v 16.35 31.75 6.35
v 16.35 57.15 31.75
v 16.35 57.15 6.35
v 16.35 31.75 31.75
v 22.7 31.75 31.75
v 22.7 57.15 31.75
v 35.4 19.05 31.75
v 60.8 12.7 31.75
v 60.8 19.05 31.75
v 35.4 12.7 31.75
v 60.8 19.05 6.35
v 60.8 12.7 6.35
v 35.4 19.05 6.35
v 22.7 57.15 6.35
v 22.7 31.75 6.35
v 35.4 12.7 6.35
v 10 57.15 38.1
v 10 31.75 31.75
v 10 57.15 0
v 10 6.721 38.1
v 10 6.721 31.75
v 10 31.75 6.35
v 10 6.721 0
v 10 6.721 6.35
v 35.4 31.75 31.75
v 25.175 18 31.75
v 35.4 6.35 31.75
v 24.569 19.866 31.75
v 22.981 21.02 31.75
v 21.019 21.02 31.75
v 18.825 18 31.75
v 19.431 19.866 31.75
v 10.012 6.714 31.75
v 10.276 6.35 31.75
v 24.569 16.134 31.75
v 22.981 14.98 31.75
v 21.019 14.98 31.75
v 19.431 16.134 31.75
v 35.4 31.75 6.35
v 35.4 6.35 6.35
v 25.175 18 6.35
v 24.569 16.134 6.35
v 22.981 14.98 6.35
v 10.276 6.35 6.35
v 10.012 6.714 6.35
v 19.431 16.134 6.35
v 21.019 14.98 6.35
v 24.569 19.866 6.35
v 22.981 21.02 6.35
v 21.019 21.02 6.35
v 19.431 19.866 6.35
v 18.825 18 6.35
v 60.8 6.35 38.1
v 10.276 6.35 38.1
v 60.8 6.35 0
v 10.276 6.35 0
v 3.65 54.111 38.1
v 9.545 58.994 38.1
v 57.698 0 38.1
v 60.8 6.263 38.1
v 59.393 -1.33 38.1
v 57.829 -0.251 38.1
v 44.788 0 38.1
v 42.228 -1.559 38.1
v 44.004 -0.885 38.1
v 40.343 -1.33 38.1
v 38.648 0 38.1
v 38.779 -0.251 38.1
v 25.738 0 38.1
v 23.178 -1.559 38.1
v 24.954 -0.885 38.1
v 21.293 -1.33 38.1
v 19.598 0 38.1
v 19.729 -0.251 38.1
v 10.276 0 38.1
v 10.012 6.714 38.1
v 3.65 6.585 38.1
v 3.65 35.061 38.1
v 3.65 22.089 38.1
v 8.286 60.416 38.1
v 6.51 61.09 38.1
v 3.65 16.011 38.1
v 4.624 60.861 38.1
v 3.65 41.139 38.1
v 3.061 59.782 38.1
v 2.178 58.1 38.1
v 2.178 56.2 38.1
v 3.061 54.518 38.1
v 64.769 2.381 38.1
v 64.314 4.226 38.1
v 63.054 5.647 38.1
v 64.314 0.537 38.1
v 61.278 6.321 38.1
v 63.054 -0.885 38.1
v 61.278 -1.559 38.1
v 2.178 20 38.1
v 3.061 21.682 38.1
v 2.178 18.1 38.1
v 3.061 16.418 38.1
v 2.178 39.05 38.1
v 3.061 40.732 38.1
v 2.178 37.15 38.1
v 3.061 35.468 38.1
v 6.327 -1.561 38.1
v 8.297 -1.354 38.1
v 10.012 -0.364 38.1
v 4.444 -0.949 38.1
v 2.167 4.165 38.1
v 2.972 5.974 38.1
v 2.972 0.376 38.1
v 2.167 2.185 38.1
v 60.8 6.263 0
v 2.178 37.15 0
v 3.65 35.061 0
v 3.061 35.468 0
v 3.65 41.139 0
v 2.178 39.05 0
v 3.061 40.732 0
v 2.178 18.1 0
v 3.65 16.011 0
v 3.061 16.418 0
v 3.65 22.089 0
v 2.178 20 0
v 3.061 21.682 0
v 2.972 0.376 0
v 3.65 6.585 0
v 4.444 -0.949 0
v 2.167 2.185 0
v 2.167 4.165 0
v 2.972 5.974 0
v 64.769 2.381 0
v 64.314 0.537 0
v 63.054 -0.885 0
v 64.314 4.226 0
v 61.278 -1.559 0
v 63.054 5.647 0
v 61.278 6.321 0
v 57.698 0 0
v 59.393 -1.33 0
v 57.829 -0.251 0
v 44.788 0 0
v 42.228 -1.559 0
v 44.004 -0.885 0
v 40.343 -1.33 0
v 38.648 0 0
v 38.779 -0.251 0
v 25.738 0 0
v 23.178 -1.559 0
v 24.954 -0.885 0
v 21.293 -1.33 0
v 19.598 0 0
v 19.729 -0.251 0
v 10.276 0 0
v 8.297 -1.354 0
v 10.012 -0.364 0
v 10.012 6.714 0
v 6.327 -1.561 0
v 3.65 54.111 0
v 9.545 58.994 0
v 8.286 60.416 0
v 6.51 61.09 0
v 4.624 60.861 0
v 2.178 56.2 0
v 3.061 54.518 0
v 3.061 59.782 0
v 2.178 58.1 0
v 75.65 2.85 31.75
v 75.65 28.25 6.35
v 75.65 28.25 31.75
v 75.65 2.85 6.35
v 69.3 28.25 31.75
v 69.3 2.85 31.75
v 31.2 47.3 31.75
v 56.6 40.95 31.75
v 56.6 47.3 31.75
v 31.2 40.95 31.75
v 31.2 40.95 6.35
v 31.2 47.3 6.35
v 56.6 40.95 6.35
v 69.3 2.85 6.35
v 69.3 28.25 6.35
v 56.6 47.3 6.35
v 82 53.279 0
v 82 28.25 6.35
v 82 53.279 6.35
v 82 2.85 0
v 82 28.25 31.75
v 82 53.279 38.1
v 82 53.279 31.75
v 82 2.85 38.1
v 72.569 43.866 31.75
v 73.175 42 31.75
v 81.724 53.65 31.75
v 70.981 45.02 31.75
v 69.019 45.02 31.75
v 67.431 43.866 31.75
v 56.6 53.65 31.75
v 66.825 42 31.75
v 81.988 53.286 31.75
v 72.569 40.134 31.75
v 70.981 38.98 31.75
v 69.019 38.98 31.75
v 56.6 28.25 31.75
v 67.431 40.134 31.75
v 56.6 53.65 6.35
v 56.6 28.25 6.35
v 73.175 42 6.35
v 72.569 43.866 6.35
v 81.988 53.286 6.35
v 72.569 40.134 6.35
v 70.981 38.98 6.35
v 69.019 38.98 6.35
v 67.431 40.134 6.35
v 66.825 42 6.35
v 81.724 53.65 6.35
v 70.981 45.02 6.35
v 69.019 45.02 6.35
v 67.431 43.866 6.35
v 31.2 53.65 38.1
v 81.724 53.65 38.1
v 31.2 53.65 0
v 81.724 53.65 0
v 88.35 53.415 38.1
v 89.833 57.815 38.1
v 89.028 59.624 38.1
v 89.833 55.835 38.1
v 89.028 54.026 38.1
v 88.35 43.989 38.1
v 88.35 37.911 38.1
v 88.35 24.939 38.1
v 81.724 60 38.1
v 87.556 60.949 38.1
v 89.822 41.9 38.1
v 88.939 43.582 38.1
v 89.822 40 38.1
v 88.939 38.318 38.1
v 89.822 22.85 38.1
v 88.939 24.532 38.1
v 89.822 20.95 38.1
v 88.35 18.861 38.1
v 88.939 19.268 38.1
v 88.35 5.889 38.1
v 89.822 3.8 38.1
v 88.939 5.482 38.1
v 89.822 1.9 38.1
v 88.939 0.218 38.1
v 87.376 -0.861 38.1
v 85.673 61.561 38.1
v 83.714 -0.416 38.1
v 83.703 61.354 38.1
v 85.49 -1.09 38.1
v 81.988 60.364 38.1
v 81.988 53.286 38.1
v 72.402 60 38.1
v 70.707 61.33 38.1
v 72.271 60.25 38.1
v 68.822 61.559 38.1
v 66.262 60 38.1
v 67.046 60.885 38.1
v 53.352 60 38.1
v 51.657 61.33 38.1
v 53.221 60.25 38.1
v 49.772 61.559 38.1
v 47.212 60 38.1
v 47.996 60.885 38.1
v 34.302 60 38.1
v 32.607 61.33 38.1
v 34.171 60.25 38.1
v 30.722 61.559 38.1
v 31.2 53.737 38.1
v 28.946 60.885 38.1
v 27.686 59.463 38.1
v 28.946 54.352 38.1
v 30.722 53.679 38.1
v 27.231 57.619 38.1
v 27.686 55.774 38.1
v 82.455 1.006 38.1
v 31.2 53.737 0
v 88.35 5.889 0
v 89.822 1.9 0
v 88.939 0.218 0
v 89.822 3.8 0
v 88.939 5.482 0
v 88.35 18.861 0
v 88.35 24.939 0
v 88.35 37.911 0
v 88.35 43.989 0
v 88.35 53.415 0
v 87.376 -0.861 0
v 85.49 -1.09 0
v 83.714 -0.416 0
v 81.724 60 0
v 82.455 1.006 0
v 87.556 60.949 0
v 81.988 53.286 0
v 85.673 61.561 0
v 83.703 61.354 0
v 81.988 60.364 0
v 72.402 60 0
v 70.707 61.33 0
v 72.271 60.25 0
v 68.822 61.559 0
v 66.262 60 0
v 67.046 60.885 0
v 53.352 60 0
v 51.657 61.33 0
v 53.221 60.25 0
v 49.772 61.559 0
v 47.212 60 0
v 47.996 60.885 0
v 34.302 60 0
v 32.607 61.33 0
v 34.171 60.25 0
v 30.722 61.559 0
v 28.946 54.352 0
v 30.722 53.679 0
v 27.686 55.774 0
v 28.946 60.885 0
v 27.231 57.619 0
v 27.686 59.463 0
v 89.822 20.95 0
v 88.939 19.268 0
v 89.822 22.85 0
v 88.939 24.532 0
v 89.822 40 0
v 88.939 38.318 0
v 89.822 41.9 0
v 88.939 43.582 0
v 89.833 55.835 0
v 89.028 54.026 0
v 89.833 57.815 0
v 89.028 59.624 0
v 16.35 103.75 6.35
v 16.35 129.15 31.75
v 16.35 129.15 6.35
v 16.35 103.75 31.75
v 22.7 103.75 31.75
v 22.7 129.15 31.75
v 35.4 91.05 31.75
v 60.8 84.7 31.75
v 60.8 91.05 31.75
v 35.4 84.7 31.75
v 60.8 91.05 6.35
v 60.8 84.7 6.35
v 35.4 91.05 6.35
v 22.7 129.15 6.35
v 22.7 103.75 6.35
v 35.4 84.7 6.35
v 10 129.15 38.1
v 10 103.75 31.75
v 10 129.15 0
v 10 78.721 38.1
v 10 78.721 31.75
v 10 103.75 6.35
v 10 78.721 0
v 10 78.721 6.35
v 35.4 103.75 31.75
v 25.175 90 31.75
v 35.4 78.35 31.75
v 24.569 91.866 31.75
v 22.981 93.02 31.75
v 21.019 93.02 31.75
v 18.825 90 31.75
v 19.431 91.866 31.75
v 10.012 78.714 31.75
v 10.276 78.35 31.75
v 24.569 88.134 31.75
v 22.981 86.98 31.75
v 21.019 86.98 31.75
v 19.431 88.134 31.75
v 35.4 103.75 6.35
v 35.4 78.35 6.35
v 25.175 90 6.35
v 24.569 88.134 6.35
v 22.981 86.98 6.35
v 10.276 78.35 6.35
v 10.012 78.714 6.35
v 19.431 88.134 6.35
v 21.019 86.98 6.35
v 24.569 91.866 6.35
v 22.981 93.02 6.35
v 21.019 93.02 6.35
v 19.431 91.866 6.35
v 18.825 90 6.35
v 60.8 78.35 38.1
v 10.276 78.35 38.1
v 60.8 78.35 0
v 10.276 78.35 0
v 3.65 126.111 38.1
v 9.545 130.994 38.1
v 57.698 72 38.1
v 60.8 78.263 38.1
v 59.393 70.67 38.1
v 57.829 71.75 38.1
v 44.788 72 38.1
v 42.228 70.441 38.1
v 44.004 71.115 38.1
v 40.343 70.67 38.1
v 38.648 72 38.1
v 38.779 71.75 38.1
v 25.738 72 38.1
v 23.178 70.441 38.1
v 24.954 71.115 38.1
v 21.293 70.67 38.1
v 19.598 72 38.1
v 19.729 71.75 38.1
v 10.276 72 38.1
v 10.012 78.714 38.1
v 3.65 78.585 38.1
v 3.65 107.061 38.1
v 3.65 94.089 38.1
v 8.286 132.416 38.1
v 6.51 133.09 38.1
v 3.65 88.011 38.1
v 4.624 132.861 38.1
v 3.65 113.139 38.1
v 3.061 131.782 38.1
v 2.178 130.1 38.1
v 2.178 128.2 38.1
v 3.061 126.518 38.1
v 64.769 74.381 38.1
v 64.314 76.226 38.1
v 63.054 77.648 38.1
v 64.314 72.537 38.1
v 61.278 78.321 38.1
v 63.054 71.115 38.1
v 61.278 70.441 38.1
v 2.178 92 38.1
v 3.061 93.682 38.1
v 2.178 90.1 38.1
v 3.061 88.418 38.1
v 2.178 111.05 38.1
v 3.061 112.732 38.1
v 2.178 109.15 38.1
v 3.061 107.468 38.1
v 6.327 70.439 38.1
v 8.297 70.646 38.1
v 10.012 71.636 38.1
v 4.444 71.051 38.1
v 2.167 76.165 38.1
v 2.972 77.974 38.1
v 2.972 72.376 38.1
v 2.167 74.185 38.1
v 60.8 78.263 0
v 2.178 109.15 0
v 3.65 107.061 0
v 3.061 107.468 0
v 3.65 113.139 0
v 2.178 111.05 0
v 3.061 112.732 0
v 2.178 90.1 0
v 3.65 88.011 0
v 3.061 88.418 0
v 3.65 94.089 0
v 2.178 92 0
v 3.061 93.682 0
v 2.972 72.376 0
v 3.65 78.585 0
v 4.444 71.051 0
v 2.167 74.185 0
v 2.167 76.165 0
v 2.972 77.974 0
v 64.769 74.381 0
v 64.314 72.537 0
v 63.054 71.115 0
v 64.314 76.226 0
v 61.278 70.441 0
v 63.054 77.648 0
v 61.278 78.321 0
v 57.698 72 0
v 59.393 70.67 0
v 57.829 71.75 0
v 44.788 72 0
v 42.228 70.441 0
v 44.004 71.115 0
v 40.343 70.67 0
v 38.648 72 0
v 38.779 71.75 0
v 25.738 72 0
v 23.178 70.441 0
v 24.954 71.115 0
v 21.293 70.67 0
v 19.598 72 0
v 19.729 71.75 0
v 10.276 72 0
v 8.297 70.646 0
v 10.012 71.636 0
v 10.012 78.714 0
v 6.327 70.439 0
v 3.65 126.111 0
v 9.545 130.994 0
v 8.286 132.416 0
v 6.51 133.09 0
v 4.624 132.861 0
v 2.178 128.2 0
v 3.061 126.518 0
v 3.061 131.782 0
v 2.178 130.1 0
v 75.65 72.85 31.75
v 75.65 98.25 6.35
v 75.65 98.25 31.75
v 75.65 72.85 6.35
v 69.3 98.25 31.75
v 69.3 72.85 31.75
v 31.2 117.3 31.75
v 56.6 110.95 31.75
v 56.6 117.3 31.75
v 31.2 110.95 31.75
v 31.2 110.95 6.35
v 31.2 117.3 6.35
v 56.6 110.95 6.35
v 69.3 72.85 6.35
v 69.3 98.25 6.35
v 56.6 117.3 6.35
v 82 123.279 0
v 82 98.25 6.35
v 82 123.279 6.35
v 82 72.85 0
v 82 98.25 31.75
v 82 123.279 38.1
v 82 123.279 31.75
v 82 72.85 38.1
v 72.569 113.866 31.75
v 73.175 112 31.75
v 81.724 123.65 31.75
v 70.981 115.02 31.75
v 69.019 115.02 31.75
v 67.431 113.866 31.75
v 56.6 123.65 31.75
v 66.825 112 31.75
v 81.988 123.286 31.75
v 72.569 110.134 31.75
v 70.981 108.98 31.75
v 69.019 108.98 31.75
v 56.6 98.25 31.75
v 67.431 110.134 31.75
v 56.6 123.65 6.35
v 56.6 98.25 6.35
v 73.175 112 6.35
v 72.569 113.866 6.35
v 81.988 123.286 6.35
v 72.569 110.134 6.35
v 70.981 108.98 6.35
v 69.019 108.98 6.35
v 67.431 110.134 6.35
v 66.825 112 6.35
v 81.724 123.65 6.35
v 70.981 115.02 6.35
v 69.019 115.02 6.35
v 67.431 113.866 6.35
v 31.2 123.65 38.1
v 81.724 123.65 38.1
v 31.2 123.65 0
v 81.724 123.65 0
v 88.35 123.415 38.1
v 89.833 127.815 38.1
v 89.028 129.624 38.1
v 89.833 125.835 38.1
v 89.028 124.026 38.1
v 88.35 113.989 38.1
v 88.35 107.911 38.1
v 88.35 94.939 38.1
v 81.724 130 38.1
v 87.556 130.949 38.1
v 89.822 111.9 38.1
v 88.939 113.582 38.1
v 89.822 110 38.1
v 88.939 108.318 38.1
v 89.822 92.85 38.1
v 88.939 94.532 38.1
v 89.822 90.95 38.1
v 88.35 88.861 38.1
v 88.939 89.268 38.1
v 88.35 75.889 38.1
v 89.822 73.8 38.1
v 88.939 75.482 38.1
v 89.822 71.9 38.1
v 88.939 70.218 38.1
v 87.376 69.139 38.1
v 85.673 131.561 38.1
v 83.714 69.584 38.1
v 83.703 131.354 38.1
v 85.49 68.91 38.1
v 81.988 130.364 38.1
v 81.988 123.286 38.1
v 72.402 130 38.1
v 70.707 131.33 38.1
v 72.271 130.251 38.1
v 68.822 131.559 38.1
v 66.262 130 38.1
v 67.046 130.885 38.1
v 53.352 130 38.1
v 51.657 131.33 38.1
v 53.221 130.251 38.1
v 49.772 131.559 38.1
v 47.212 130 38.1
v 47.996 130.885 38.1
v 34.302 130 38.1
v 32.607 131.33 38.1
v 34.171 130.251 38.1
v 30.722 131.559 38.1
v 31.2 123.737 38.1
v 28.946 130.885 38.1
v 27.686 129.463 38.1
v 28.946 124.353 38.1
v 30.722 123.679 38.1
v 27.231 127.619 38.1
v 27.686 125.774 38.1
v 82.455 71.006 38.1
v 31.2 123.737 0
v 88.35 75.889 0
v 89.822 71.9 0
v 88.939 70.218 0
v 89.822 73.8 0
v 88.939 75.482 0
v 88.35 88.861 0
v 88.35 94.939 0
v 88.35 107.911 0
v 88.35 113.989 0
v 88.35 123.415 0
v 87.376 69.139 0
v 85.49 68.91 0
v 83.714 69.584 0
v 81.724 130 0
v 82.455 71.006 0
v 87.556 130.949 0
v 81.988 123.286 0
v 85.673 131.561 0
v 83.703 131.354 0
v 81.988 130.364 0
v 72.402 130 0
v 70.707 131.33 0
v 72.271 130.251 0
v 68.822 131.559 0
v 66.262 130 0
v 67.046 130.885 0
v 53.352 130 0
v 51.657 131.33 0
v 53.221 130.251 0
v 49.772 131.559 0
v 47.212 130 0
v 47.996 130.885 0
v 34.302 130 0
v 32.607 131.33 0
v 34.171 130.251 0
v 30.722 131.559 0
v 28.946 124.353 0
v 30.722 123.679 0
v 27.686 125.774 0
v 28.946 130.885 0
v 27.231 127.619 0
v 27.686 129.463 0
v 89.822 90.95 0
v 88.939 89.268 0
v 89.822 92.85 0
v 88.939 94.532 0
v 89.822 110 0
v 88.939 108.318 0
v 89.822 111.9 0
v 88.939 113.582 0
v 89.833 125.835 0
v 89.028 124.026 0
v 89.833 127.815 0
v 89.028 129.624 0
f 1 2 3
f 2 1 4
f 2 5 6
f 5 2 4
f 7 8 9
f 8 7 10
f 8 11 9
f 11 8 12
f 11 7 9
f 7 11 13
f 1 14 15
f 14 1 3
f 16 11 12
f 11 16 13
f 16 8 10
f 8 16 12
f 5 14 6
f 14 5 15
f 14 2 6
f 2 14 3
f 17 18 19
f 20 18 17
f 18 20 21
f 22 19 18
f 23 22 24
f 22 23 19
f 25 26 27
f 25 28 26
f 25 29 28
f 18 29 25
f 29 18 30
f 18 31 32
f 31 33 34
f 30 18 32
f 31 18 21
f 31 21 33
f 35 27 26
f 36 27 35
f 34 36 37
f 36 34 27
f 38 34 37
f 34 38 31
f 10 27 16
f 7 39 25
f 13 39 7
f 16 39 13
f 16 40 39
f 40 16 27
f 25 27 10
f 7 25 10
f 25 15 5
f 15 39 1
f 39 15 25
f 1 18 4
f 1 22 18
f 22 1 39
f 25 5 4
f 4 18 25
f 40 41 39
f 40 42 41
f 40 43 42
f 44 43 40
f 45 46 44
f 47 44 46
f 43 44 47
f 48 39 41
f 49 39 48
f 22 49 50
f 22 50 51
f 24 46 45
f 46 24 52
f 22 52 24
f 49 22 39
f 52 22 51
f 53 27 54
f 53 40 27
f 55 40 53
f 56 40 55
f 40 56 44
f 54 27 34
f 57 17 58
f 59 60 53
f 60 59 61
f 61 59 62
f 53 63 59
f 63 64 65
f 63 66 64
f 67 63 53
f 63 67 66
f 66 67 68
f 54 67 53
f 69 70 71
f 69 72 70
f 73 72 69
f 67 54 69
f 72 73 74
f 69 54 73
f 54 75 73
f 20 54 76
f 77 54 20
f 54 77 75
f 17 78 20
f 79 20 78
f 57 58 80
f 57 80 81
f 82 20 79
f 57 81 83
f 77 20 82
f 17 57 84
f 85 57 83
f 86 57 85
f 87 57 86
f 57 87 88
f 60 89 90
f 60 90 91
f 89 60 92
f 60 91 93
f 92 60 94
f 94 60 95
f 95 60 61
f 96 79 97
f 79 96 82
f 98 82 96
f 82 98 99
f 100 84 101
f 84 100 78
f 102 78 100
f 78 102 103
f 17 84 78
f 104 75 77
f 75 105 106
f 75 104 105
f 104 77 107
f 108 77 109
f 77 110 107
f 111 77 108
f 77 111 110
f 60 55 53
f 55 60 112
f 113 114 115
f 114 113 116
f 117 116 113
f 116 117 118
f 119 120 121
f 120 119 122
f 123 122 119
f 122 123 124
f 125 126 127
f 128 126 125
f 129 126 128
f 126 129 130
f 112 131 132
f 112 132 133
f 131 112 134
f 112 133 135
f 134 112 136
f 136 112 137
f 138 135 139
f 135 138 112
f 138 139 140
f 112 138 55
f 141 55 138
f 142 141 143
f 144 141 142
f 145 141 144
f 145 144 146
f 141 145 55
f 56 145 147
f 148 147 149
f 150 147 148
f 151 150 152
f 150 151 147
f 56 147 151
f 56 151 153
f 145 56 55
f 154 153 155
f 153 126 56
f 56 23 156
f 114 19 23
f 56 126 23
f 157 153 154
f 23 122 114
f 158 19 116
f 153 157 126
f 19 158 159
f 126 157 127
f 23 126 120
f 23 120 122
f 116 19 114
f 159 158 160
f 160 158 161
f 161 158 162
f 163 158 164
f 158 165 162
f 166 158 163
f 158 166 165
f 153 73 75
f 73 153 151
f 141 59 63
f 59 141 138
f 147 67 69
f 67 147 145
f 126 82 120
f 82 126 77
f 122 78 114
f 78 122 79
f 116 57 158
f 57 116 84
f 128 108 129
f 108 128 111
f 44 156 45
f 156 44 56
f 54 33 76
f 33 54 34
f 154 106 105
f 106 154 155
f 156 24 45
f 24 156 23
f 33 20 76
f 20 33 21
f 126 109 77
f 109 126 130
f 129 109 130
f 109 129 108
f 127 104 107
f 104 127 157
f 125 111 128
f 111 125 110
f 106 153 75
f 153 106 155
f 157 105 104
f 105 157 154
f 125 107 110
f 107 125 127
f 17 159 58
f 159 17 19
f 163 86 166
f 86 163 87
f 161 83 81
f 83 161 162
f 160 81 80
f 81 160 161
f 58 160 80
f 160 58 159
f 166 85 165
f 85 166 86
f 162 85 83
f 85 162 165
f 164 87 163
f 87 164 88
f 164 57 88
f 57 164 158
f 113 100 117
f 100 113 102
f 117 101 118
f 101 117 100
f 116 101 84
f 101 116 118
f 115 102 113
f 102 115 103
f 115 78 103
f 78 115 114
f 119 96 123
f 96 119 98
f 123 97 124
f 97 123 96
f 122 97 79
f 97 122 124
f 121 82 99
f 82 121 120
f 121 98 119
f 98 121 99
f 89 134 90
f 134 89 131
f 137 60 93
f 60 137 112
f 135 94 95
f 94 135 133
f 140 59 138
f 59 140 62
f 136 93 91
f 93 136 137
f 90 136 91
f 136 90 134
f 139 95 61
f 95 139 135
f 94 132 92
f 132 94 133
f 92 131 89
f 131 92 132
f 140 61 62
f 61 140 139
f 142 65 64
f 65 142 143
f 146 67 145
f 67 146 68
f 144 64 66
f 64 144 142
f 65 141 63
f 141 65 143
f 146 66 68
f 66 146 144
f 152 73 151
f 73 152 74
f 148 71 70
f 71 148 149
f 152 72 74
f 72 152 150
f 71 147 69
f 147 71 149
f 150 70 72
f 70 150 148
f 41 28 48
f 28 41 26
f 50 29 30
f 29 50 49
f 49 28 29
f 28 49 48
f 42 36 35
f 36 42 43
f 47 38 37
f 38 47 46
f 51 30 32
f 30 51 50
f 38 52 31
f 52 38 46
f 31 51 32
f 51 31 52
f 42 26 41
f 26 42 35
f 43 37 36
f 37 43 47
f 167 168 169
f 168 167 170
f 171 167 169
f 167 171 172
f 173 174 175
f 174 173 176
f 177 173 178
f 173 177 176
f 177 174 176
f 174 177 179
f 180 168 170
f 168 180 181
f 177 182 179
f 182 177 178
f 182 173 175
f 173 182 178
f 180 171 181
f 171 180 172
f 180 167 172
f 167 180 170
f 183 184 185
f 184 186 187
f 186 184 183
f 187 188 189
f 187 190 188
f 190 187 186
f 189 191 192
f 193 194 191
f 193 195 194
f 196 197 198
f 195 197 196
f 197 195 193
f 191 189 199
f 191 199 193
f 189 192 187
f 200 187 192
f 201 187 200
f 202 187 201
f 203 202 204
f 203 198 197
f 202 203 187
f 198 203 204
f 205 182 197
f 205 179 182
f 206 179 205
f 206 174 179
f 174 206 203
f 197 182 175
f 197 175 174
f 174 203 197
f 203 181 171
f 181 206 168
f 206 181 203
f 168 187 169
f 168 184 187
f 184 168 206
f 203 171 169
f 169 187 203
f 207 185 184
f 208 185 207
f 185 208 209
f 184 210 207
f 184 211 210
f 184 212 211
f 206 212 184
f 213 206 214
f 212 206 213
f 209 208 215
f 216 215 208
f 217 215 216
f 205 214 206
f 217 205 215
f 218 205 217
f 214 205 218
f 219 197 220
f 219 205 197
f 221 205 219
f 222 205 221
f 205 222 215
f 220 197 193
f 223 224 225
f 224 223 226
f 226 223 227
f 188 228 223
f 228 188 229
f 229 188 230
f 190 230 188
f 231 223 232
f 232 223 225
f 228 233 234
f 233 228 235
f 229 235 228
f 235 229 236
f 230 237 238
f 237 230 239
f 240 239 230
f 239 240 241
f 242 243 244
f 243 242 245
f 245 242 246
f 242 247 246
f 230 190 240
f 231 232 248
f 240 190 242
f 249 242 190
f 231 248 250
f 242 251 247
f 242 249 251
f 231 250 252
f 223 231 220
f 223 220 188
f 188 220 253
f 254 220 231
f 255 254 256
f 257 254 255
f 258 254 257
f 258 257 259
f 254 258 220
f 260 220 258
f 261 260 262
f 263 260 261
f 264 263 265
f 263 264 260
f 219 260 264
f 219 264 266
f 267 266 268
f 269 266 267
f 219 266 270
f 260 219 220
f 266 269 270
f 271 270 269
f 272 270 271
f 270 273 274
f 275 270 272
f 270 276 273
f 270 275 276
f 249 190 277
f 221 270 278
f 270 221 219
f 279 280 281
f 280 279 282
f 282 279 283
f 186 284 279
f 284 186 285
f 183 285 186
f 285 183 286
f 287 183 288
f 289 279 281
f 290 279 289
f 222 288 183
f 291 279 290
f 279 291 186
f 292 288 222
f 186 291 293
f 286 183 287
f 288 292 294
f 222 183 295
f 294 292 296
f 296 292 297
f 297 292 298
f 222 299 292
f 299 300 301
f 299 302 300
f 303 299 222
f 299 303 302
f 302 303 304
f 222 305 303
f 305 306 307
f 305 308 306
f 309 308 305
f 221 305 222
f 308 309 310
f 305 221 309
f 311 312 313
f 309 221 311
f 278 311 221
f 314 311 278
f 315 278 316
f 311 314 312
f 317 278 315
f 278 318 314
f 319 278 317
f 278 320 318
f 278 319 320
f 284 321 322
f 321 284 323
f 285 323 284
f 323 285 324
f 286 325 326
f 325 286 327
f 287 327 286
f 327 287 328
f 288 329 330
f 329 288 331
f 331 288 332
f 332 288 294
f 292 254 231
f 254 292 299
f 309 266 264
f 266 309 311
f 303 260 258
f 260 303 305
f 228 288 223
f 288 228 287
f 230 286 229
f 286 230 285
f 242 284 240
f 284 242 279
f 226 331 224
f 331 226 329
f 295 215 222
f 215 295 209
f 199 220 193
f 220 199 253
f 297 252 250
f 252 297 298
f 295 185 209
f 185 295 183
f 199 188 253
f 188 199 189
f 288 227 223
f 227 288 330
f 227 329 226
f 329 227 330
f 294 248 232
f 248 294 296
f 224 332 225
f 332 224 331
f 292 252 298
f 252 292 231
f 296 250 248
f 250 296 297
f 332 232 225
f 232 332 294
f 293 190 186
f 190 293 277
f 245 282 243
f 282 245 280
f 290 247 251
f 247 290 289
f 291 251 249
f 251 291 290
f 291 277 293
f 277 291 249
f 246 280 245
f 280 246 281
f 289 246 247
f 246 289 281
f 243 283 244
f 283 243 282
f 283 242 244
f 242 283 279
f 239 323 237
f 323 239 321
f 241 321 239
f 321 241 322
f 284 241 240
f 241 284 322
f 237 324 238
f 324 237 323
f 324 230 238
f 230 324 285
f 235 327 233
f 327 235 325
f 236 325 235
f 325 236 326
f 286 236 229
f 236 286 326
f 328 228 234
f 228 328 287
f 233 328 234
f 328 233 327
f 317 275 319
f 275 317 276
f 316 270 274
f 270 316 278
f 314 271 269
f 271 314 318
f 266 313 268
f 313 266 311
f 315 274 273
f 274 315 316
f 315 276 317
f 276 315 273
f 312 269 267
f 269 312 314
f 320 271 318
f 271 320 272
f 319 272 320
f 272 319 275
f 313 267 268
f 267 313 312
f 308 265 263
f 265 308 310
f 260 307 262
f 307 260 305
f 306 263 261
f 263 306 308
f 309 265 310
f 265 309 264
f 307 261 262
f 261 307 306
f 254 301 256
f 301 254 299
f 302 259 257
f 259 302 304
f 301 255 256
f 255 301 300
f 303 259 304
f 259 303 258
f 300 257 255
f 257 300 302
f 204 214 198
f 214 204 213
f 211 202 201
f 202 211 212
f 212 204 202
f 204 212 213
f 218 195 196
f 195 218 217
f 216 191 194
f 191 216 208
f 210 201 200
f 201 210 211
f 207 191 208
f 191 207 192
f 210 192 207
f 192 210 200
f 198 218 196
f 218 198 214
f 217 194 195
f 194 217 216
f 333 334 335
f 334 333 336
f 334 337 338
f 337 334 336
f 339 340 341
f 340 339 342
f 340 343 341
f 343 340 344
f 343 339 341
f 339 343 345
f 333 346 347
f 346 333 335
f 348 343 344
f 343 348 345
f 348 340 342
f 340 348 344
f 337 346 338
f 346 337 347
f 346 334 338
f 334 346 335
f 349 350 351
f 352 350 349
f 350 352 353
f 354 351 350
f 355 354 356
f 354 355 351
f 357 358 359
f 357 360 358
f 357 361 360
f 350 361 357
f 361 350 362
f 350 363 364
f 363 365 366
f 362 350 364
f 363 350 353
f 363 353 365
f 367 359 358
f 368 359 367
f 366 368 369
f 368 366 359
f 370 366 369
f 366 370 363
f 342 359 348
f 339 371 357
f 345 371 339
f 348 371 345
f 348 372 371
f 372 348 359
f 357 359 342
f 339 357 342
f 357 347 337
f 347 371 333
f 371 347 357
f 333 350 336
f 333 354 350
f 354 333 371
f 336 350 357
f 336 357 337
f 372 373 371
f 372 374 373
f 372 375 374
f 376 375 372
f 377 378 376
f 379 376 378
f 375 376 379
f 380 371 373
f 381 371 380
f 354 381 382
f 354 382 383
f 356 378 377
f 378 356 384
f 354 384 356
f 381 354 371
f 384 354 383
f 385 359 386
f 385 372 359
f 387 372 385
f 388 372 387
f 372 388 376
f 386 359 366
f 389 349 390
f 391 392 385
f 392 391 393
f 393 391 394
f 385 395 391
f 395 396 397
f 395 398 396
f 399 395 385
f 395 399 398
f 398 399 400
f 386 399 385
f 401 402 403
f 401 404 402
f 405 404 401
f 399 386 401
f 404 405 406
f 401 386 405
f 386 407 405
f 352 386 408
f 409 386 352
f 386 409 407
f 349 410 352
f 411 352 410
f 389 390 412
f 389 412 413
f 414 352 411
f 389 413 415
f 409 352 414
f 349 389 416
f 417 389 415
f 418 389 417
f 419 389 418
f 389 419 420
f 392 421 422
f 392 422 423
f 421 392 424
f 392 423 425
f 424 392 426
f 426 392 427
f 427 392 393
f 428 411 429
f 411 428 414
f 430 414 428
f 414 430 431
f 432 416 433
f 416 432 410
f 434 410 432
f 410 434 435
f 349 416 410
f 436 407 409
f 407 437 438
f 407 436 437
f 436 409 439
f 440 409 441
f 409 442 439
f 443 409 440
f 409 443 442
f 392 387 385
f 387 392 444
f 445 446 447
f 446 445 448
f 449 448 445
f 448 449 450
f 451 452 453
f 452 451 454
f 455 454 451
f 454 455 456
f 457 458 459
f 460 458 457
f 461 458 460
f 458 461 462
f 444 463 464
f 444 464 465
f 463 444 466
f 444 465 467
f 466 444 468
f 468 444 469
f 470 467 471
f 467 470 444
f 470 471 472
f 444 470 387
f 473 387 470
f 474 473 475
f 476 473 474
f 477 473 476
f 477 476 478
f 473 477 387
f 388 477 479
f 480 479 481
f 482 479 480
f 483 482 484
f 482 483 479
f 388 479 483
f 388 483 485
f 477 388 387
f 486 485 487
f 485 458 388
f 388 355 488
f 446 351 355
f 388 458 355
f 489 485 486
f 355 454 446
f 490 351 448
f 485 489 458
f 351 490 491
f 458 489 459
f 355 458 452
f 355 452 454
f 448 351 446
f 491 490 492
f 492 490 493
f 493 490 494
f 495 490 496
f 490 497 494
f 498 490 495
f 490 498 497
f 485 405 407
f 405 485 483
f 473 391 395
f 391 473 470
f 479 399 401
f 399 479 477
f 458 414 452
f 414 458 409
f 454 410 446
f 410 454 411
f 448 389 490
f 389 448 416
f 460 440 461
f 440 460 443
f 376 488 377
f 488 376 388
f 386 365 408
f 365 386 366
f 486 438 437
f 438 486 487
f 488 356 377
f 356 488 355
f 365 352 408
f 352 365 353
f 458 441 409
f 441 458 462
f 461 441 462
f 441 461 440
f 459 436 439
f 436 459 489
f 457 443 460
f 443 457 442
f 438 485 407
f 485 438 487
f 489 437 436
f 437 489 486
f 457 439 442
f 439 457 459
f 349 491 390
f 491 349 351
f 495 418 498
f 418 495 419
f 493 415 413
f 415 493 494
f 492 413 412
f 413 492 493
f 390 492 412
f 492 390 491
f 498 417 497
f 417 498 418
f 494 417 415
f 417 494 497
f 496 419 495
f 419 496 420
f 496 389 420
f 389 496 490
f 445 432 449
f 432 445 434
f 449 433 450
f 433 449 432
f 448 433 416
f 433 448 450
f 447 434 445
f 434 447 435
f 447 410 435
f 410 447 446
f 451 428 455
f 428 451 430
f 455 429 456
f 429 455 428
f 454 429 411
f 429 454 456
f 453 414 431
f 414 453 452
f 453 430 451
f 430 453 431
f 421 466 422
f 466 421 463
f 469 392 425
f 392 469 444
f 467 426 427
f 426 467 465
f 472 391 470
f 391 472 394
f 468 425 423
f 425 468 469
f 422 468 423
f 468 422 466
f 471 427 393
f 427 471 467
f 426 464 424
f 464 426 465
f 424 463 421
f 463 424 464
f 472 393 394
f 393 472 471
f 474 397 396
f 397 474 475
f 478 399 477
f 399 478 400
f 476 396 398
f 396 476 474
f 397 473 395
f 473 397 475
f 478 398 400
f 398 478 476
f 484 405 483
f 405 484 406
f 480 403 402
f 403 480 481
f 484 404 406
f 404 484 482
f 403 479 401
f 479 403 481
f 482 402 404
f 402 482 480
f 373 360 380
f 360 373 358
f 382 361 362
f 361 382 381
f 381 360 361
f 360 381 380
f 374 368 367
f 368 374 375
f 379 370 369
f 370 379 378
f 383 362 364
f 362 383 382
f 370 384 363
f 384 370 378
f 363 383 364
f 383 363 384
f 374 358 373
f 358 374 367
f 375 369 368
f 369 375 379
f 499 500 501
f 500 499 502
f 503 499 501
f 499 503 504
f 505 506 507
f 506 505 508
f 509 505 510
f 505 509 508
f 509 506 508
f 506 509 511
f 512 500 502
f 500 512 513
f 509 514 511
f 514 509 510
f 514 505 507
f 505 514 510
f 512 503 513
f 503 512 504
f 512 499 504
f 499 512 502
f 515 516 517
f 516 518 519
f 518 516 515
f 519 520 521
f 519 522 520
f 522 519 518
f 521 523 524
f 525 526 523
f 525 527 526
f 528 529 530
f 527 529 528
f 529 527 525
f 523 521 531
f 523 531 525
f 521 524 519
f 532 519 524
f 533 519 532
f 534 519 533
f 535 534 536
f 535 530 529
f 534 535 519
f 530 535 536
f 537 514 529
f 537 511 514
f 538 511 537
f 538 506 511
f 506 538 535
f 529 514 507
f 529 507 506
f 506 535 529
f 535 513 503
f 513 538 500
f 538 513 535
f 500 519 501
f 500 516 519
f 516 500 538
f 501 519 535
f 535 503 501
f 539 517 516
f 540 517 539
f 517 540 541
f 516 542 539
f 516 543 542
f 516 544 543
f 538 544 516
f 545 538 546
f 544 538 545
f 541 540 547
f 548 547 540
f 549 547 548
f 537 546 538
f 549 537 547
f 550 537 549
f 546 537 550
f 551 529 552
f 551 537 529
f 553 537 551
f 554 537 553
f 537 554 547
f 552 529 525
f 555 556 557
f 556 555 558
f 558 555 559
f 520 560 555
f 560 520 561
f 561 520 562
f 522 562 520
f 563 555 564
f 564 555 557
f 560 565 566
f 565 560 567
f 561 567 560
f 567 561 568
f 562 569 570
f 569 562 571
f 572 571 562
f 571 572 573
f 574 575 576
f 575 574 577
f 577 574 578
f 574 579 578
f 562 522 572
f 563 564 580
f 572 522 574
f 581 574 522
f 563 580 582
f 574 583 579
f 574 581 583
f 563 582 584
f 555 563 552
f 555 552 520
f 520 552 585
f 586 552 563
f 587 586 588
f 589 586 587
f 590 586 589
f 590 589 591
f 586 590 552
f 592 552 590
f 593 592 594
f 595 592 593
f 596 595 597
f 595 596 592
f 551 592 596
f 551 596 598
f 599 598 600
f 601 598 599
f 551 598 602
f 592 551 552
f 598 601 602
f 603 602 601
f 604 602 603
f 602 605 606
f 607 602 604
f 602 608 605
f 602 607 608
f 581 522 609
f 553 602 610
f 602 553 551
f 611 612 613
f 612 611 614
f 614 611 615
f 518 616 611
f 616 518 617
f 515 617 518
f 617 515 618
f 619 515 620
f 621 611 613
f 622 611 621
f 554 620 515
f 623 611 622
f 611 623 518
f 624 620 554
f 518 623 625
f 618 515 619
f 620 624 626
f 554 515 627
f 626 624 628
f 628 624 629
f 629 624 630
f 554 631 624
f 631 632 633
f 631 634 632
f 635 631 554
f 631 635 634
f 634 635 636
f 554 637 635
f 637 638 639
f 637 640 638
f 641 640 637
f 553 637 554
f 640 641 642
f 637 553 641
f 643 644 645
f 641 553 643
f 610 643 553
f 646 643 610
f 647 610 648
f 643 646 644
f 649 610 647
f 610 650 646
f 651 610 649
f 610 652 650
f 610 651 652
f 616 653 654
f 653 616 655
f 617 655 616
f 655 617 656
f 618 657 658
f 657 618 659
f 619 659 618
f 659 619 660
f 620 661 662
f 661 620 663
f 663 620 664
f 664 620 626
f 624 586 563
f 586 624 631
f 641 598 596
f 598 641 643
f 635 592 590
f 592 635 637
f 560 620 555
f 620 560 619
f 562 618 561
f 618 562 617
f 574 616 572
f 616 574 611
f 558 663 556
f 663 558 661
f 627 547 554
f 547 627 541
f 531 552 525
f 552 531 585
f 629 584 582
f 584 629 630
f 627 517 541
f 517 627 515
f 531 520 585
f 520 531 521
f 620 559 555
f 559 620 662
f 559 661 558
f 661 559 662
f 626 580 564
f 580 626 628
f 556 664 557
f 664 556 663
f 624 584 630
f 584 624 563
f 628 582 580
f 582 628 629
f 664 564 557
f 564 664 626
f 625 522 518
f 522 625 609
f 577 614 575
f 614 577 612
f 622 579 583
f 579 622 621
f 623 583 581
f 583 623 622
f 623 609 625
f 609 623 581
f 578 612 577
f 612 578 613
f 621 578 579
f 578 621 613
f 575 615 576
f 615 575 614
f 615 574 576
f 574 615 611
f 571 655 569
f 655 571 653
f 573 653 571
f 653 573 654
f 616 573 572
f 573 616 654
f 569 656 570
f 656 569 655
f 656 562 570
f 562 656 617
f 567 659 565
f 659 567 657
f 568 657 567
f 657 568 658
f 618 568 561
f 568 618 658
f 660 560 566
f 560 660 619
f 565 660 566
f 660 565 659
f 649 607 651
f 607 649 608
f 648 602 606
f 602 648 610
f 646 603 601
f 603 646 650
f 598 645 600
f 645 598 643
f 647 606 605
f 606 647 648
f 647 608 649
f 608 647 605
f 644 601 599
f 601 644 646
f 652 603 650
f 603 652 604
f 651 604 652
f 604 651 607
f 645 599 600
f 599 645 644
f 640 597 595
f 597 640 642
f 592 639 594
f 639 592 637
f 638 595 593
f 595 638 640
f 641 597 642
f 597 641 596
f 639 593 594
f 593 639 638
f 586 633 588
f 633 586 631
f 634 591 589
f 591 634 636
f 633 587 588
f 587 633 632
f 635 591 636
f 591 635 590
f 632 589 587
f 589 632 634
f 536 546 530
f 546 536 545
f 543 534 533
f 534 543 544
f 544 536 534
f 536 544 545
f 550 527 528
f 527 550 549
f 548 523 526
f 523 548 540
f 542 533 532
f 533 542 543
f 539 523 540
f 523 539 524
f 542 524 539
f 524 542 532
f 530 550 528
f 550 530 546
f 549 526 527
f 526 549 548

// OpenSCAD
// file: joints.scad
/**
 * joints.scad is part of Paper Laptop project.
 * This file contains various models for joining two or
 * more pieces of flat materials together.
 *
 * @author R. S. Doiel, <rsdoiel@gmail.com>
 * copyright (c) 2016 all rights reserved
 * Released under a BSD 2-clause license
 */

// Formboard firm enough to make a case with is about
// 1/4th inch (6.35mm) thick. Usually sold in single sheets
// of about 20"x30".

//
// Basic models are for parts without any holes for fasteners.
//

/*
 * CornerBasic() - corner joint without fastener hole
 */
module CornerBasic() {
    u = 3.175; // Unit is 3.175mm or 1/8th inch:w
    t = 6.35; // Thickness of the 1/4th" Foamboard

    // Inner block, width, depth, height
    translate([0, t, t]) {
            color([1,0,0]) cube([25.4, 25.4, 25.4]); 
    }
    // Outer shell
    color([0,1,0]) cube([50.8,t,25.4+(2*t)]);
    translate([-t,t,0]) {
        color([0,1,0]) cube([t,50.8,25.4+(2*t)]);
    }
    // Outer corners
    translate([u*-1,u,0]) {
        color([0,1,0]) cylinder(h=25.4+(2*t),r=1.5*u,center=false);
    }

    // Outer bumps
    translate([u*-1.25,u*18,0]) {
        color([0,1,0]) cylinder(h=25.4+(2*t),r=1.25*u,center=false);
    }
    translate([u*-1.25,u*12,0]) {
        color([0,1,0]) cylinder(h=25.4+(2*t),r=1.25*u,center=false);
    }
    translate([u*-1.25,u*6,0]) {
        color([0,1,0]) cylinder(h=25.4+(2*t),r=1.25*u,center=false);
    }

    translate([u*16,u*0.75,0]) {
        color([0,1,0]) cylinder(h=25.4+(2*t),r=1.25*u,center=false);
    }
    translate([u*10,u*0.75,0]) {
        color([0,1,0]) cylinder(h=25.4+(2*t),r=1.25*u,center=false);
    }
    translate([u*4,u*0.75,0]) {
        color([0,1,0]) cylinder(h=25.4+(2*t),r=1.25*u,center=false);
    }
    
    // Inner shell
    translate([t,2*t,t]) {
        color([0,1,0]) cube([50.8-t,t,25.4]);
        color([0,1,0]) cube([t,50.8-t,25.4]);
    }
}

//
// Corner() basic corner joint plus hole for fastener
//
module Corner() {
    difference() {
        u = 3.175;
        CornerBasic();
        // Add a hole for screw
        translate([12,18,0]) {
            color([0,0,1]) cylinder(h=25.4+(4*u),r=u,center=false);
        }
    }
}

//
// EndBasic
//
module EndBasic() {
    u = 3.175; // Unit is 3.175mm or 1/8th inch:w
    t = 6.35; // Thickness of the 1/4th" Foamboard

    // Inner block, width, depth, height
    translate([0, t, t]) {
            color([1,0,0]) cube([25.4, 25.4, 25.4]); 
    }
    // Outer shell
    color([0,1,0]) cube([50.8,t,25.4+(2*t)]);

    // Outer corners
    translate([u*-1,u,0]) {
        color([0,1,0]) cylinder(h=25.4+(2*t),r=1.5*u,center=false);
    }

    translate([u*16,u*0.75,0]) {
        color([0,1,0]) cylinder(h=25.4+(2*t),r=1.25*u,center=false);
    }
    translate([u*10,u*0.75,0]) {
        color([0,1,0]) cylinder(h=25.4+(2*t),r=1.25*u,center=false);
    }
    translate([u*4,u*0.75,0]) {
        color([0,1,0]) cylinder(h=25.4+(2*t),r=1.25*u,center=false);
    }
    
    // Inner shell
    translate([t,2*t,t]) {
        color([0,1,0]) cube([50.8-t,t,25.4]);
    }
}

//
// End() basic corner joint plus hole for fastener
//
module End() {
    difference() {
        u = 3.175;
        EndBasic();
        // Add a hole for screw
        translate([12,18,0]) {
            color([0,0,1]) cylinder(h=25.4+(4*u),r=u,center=false);
        }
    }
}

//
// SpliceBasic
//
module SpliceBasic() {
    u = 3.175; // Unit is 3.175mm or 1/8th inch:w
    t = 6.35; // Thickness of the 1/4th" Foamboard

    // Inner block (cube: [width, depth, height])
    translate([0, t, t]) {
            color([1,0,0]) cube([25.4, 25.4, 25.4]); 
    }
    // Outer shell
    color([0,1,0]) cube([50.8,t,25.4+(2*t)]);
    
    // Outer corners
    translate([u*16,u*0.75,0]) {
        color([0,1,0]) cylinder(h=25.4+(2*t),r=1.25*u,center=false);
    }
    translate([u*10,u*0.75,0]) {
        color([0,1,0]) cylinder(h=25.4+(2*t),r=1.25*u,center=false);
    }
    translate([u*4,u*0.75,0]) {
        color([0,1,0]) cylinder(h=25.4+(2*t),r=1.25*u,center=false);
    }
    
    // Inner shell
    translate([t,2*t,t]) {
        color([0,1,0]) cube([50.8-t,t,25.4]);
    }
    
    // Mirrored shapes
    mirror(180) {
        // Inner block (cube: [width, depth, height])
        translate([0, t, t]) {
                color([1,0,0]) cube([25.4, 25.4, 25.4]); 
        }
        // Outer shell
        color([0,1,0]) cube([50.8,t,25.4+(2*t)]);
        
        // Outer corners
        translate([u*16,u*0.75,0]) {
            color([0,1,0]) cylinder(h=25.4+(2*t),r=1.25*u,center=false);
        }
        translate([u*10,u*0.75,0]) {
            color([0,1,0]) cylinder(h=25.4+(2*t),r=1.25*u,center=false);
        }
        translate([u*4,u*0.75,0]) {
            color([0,1,0]) cylinder(h=25.4+(2*t),r=1.25*u,center=false);
        }
        
        // Inner shell
        translate([t,2*t,t]) {
            color([0,1,0]) cube([50.8-t,t,25.4]);
        }
    }
}

//
// Splice() basic corner joint plus hole for fastener
//
module Splice() {
    difference() {
        u = 3.175;
        SpliceBasic();
        // Add a hole for screw
        translate([0,18,0]) {
            color([0,0,1]) cylinder(h=25.4+(4*u),r=u,center=false);
        }
    }
}


// Four corner joints
module FourCornersGrouped() {
    Corner();
    translate([120,6.35,0]) {
        rotate(90) {
            Corner();
        }
    }
    translate([114, 124, 0]) {
        rotate(180) {
            Corner();
            translate([120,6.35,0]) {
                rotate(90) {
                    Corner();
                }
            }
        }
    }
}

// Two End Pieces
module TwoEndsGrouped() {
    translate([0, 0, 0]) {
        End();
    }
    translate([114, 0, 0]) {
        mirror(180) End();
    }
}

module TwoSplicesGrouped() {
    translate([58, 0, 0]) {
        Splice();
    }
    translate([58, 38, 0]) {
        Splice();
    }
}

//Corner();
//Splice();
//End();
//FourCornersGrouped();
//TwoEndsGrouped();
//TwoSplicesGrouped();
// main file
/**
 * A collection of parts to print together.
 */
 include <joints.scad>
 
translate([10, 0, 0]) {
    Corner();
}
translate([82, 60, 0]) {
    rotate(180) {
        Corner();
    }
}
translate([10, 72, 0]) {
    Corner();
}
translate([82, 130, 0]) {
    rotate(180) {
        Corner();
    }
}
